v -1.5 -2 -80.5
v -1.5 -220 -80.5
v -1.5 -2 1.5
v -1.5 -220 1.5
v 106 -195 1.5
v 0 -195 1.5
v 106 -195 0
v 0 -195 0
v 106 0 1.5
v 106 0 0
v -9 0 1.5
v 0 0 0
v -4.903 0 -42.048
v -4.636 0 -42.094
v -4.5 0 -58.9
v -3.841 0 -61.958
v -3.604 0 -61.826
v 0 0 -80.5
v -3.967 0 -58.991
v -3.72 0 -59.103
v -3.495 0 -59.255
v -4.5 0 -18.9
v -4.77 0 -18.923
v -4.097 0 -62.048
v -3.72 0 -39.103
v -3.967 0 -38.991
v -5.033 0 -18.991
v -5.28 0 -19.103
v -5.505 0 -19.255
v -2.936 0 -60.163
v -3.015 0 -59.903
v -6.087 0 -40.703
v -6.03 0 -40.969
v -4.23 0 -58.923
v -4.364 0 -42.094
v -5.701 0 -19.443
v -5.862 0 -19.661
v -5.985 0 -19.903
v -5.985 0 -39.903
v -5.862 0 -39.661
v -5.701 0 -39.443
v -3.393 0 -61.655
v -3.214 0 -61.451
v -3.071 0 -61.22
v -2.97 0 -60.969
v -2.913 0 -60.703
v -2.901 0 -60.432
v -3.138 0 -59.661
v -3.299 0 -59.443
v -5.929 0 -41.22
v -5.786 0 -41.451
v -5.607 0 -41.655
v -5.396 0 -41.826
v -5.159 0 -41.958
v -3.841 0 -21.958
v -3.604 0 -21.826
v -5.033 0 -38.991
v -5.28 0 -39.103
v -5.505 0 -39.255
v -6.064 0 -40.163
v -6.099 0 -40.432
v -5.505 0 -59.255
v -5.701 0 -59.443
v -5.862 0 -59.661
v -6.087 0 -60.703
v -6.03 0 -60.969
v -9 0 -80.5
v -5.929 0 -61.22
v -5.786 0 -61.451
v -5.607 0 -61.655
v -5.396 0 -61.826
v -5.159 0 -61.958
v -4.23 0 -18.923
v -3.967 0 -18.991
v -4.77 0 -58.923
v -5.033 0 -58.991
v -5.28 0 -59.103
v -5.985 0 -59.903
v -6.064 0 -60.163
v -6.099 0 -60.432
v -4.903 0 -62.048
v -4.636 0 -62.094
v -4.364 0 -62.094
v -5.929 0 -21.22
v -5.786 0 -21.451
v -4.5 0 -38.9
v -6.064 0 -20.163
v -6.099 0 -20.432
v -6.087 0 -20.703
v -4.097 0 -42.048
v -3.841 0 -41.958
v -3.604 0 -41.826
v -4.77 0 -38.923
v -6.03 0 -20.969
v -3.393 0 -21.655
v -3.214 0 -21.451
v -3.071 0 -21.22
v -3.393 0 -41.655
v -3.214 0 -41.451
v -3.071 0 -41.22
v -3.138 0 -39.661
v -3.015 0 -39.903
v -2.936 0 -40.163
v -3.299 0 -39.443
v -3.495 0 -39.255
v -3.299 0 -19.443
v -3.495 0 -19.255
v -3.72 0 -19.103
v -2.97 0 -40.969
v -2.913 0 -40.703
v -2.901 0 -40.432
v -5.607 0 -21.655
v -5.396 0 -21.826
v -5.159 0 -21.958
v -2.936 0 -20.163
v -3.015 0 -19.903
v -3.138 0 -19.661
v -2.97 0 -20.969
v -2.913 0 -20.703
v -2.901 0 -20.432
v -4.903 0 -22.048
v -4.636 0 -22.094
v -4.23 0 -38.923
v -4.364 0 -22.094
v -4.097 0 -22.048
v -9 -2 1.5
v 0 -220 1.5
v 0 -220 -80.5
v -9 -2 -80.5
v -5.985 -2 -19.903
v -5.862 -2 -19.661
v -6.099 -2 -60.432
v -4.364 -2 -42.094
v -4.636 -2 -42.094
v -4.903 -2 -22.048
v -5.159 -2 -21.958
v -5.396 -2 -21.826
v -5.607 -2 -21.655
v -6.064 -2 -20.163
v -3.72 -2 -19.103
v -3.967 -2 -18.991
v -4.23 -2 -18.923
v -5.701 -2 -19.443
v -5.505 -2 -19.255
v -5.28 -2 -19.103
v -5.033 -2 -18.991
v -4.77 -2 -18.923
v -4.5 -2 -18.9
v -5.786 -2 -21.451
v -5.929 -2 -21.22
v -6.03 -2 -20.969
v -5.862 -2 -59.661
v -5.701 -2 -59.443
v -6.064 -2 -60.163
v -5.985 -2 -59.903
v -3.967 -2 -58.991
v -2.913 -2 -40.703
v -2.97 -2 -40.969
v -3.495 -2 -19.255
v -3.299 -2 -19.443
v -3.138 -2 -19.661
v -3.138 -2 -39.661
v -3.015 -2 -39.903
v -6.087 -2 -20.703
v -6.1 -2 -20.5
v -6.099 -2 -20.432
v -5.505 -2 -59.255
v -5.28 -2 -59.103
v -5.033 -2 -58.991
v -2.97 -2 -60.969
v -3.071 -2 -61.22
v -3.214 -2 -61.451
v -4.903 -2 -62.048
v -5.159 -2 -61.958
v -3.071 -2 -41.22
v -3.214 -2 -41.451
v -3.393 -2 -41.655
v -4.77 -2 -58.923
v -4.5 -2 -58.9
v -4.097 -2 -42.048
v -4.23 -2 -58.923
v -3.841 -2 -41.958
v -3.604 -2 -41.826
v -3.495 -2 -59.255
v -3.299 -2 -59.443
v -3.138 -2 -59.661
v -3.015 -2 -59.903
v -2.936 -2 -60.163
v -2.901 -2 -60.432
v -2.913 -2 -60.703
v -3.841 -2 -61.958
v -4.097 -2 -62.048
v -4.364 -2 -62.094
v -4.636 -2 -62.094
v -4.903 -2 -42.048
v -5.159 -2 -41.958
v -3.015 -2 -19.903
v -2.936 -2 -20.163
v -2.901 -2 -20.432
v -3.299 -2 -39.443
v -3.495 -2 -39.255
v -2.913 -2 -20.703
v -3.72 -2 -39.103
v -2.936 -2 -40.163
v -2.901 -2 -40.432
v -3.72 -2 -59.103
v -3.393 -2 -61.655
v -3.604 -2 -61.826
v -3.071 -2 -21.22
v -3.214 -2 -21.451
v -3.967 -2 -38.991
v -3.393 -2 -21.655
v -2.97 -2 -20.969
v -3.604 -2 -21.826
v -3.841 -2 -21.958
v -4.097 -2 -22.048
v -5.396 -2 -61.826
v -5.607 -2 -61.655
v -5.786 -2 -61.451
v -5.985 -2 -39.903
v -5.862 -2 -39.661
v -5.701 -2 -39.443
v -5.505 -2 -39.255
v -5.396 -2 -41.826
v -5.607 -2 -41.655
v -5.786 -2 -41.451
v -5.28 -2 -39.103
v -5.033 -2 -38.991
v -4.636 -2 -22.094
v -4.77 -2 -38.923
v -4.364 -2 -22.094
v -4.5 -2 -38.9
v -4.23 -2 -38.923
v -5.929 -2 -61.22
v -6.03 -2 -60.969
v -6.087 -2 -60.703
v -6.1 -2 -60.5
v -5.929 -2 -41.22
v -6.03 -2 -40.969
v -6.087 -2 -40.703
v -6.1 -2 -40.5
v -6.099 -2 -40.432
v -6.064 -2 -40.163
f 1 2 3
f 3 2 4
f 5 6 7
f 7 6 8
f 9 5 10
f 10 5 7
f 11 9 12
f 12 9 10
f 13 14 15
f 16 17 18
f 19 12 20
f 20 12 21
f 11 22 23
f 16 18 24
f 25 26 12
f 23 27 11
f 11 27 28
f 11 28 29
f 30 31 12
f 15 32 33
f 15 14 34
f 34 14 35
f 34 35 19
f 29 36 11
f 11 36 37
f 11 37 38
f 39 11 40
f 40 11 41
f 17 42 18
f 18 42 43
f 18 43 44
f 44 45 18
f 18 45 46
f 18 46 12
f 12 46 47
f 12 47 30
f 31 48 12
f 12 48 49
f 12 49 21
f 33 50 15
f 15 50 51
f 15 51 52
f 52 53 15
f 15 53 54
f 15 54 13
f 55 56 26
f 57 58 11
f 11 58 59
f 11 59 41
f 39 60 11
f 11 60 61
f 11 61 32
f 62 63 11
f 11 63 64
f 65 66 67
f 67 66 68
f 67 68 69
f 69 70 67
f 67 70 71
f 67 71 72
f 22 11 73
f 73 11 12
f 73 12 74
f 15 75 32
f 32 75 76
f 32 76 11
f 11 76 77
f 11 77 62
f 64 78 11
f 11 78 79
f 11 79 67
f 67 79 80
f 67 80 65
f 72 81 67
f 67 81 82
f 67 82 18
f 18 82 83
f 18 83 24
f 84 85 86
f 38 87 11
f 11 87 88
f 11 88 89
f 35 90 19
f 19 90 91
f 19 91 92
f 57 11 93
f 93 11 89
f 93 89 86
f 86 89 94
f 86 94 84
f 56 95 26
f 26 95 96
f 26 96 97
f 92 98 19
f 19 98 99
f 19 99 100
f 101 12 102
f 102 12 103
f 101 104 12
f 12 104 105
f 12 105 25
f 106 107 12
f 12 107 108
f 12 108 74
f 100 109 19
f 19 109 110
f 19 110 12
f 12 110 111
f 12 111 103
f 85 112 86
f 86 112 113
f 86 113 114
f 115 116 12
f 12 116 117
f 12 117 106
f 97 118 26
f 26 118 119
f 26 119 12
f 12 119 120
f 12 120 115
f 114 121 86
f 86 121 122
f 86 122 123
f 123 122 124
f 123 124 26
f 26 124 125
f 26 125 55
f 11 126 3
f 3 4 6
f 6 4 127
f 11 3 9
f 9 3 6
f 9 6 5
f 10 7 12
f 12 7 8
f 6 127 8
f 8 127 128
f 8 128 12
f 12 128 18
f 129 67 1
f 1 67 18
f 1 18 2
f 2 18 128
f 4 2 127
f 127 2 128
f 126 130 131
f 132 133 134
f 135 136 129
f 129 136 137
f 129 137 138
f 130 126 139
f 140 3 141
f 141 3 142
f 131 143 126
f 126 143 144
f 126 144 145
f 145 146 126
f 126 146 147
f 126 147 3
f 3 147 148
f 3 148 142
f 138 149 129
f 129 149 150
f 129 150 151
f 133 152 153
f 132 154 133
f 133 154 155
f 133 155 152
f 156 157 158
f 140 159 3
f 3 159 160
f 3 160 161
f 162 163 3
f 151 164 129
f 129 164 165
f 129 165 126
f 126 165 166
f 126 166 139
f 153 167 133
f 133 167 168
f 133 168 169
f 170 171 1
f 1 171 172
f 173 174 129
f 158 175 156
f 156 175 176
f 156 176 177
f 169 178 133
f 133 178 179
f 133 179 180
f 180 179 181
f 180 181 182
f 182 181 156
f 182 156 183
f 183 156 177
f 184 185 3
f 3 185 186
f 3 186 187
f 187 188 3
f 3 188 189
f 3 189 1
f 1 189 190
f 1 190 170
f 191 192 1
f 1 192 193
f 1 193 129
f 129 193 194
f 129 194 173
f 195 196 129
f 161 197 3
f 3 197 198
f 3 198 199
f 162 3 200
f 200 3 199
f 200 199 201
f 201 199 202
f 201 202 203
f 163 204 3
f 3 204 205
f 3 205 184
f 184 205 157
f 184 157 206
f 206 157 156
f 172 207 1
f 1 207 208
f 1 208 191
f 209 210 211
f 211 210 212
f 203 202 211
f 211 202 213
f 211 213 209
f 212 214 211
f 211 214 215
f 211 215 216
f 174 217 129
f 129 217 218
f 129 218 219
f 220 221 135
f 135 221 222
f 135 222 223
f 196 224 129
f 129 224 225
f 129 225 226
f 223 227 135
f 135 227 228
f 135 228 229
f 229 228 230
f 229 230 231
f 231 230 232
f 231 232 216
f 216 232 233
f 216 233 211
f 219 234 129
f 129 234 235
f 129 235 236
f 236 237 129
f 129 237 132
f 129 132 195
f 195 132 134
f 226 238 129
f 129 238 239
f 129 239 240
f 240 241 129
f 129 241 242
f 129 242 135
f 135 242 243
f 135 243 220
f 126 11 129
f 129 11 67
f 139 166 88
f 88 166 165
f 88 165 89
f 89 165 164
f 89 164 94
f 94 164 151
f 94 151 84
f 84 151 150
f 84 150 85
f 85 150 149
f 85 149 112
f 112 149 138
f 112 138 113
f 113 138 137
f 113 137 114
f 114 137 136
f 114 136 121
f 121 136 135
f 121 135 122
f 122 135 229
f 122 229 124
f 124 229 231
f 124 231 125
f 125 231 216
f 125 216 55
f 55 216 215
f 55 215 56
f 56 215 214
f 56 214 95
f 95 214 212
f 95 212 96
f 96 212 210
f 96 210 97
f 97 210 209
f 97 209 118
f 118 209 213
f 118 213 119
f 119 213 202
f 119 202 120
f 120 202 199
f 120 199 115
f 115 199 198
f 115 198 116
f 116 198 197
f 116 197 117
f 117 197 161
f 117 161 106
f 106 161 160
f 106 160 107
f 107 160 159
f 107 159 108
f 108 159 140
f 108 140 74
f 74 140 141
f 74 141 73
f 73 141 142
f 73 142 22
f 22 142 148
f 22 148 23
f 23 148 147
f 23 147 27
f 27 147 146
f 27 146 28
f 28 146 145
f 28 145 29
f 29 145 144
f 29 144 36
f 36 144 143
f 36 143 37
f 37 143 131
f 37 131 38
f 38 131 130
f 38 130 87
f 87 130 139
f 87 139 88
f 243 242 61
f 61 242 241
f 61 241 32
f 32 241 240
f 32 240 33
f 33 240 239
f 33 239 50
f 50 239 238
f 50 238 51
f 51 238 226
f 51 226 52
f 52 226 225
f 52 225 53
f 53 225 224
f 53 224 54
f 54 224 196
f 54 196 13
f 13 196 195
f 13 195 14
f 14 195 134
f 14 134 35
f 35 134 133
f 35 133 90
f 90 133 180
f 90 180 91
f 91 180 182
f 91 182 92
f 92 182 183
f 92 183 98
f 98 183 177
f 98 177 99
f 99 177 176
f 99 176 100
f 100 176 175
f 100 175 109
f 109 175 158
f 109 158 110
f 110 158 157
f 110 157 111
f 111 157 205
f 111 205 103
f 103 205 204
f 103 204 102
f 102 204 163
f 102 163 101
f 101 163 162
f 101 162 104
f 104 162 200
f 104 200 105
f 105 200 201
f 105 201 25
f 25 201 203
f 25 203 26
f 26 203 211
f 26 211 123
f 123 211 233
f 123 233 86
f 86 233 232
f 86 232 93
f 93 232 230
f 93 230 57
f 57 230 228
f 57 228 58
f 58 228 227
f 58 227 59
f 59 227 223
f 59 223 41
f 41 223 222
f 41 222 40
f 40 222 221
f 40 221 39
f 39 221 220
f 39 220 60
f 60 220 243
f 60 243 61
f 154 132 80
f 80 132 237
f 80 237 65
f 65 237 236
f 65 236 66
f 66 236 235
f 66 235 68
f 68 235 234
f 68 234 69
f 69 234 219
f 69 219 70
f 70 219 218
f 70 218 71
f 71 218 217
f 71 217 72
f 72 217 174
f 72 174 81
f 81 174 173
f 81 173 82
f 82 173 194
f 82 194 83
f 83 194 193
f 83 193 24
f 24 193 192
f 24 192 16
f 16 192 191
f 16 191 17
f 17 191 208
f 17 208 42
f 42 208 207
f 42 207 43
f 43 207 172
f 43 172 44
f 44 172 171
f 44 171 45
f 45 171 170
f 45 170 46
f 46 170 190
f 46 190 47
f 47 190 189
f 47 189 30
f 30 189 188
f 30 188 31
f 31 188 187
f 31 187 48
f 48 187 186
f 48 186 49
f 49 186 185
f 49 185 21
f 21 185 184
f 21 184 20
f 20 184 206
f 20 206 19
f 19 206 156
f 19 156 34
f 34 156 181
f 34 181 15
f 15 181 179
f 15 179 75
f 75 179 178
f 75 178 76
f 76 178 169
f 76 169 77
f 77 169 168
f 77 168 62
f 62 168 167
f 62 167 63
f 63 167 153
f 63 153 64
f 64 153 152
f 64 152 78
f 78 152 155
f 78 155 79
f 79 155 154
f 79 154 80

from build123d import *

# Parameters (mm, degrees)
SKETCH_1_W          = 106
SKETCH_1_H          = 195
EXTRUDE_1_DEPTH     = 1.5
SKETCH_2_W          = 82
SKETCH_2_H          = 220
EXTRUDE_2_DEPTH     = 1.5
SKETCH_3_W          = 82
SKETCH_3_H          = 2
EXTRUDE_3_DEPTH     = 9
SKETCH_5_R          = 1.6
CUT_EXTRUDE_1_DEPTH = 9


with BuildPart() as part:
    # 草图1 → 凸台-拉伸1 (new body)
    with BuildSketch(Plane.XY):
        with Locations((53, -97.5)):
            Rectangle(SKETCH_1_W, SKETCH_1_H)
    extrude(amount=EXTRUDE_1_DEPTH)

    # 草图2 → 凸台-拉伸2 (add)
    with BuildSketch(Plane.ZY):
        with Locations((-39.5, -110)):
            Rectangle(SKETCH_2_W, SKETCH_2_H)
    extrude(amount=EXTRUDE_2_DEPTH)

    # 草图3 → 凸台-拉伸3 (add)
    with BuildSketch(Plane.ZY):
        with Locations((-39.5, -1)):
            Rectangle(SKETCH_3_W, SKETCH_3_H)
    extrude(amount=EXTRUDE_3_DEPTH)

    # 草图5 → 切除-拉伸1 (cut)
    with BuildSketch(Plane(origin=(0, 0, 0), x_dir=(1, 0, 0), z_dir=(0, 1, 0))):
        with Locations(Location((-4.5, 60.5, 0), (0, 0, 270))):
            Circle(SKETCH_5_R)
        with Locations(Location((-4.5, 40.5, 0), (0, 0, 270))):
            Circle(SKETCH_5_R)
        with Locations(Location((-4.5, 20.5, 0), (0, 0, 270))):
            Circle(SKETCH_5_R)
    extrude(amount=-CUT_EXTRUDE_1_DEPTH, mode=Mode.SUBTRACT)


solid = part.part
